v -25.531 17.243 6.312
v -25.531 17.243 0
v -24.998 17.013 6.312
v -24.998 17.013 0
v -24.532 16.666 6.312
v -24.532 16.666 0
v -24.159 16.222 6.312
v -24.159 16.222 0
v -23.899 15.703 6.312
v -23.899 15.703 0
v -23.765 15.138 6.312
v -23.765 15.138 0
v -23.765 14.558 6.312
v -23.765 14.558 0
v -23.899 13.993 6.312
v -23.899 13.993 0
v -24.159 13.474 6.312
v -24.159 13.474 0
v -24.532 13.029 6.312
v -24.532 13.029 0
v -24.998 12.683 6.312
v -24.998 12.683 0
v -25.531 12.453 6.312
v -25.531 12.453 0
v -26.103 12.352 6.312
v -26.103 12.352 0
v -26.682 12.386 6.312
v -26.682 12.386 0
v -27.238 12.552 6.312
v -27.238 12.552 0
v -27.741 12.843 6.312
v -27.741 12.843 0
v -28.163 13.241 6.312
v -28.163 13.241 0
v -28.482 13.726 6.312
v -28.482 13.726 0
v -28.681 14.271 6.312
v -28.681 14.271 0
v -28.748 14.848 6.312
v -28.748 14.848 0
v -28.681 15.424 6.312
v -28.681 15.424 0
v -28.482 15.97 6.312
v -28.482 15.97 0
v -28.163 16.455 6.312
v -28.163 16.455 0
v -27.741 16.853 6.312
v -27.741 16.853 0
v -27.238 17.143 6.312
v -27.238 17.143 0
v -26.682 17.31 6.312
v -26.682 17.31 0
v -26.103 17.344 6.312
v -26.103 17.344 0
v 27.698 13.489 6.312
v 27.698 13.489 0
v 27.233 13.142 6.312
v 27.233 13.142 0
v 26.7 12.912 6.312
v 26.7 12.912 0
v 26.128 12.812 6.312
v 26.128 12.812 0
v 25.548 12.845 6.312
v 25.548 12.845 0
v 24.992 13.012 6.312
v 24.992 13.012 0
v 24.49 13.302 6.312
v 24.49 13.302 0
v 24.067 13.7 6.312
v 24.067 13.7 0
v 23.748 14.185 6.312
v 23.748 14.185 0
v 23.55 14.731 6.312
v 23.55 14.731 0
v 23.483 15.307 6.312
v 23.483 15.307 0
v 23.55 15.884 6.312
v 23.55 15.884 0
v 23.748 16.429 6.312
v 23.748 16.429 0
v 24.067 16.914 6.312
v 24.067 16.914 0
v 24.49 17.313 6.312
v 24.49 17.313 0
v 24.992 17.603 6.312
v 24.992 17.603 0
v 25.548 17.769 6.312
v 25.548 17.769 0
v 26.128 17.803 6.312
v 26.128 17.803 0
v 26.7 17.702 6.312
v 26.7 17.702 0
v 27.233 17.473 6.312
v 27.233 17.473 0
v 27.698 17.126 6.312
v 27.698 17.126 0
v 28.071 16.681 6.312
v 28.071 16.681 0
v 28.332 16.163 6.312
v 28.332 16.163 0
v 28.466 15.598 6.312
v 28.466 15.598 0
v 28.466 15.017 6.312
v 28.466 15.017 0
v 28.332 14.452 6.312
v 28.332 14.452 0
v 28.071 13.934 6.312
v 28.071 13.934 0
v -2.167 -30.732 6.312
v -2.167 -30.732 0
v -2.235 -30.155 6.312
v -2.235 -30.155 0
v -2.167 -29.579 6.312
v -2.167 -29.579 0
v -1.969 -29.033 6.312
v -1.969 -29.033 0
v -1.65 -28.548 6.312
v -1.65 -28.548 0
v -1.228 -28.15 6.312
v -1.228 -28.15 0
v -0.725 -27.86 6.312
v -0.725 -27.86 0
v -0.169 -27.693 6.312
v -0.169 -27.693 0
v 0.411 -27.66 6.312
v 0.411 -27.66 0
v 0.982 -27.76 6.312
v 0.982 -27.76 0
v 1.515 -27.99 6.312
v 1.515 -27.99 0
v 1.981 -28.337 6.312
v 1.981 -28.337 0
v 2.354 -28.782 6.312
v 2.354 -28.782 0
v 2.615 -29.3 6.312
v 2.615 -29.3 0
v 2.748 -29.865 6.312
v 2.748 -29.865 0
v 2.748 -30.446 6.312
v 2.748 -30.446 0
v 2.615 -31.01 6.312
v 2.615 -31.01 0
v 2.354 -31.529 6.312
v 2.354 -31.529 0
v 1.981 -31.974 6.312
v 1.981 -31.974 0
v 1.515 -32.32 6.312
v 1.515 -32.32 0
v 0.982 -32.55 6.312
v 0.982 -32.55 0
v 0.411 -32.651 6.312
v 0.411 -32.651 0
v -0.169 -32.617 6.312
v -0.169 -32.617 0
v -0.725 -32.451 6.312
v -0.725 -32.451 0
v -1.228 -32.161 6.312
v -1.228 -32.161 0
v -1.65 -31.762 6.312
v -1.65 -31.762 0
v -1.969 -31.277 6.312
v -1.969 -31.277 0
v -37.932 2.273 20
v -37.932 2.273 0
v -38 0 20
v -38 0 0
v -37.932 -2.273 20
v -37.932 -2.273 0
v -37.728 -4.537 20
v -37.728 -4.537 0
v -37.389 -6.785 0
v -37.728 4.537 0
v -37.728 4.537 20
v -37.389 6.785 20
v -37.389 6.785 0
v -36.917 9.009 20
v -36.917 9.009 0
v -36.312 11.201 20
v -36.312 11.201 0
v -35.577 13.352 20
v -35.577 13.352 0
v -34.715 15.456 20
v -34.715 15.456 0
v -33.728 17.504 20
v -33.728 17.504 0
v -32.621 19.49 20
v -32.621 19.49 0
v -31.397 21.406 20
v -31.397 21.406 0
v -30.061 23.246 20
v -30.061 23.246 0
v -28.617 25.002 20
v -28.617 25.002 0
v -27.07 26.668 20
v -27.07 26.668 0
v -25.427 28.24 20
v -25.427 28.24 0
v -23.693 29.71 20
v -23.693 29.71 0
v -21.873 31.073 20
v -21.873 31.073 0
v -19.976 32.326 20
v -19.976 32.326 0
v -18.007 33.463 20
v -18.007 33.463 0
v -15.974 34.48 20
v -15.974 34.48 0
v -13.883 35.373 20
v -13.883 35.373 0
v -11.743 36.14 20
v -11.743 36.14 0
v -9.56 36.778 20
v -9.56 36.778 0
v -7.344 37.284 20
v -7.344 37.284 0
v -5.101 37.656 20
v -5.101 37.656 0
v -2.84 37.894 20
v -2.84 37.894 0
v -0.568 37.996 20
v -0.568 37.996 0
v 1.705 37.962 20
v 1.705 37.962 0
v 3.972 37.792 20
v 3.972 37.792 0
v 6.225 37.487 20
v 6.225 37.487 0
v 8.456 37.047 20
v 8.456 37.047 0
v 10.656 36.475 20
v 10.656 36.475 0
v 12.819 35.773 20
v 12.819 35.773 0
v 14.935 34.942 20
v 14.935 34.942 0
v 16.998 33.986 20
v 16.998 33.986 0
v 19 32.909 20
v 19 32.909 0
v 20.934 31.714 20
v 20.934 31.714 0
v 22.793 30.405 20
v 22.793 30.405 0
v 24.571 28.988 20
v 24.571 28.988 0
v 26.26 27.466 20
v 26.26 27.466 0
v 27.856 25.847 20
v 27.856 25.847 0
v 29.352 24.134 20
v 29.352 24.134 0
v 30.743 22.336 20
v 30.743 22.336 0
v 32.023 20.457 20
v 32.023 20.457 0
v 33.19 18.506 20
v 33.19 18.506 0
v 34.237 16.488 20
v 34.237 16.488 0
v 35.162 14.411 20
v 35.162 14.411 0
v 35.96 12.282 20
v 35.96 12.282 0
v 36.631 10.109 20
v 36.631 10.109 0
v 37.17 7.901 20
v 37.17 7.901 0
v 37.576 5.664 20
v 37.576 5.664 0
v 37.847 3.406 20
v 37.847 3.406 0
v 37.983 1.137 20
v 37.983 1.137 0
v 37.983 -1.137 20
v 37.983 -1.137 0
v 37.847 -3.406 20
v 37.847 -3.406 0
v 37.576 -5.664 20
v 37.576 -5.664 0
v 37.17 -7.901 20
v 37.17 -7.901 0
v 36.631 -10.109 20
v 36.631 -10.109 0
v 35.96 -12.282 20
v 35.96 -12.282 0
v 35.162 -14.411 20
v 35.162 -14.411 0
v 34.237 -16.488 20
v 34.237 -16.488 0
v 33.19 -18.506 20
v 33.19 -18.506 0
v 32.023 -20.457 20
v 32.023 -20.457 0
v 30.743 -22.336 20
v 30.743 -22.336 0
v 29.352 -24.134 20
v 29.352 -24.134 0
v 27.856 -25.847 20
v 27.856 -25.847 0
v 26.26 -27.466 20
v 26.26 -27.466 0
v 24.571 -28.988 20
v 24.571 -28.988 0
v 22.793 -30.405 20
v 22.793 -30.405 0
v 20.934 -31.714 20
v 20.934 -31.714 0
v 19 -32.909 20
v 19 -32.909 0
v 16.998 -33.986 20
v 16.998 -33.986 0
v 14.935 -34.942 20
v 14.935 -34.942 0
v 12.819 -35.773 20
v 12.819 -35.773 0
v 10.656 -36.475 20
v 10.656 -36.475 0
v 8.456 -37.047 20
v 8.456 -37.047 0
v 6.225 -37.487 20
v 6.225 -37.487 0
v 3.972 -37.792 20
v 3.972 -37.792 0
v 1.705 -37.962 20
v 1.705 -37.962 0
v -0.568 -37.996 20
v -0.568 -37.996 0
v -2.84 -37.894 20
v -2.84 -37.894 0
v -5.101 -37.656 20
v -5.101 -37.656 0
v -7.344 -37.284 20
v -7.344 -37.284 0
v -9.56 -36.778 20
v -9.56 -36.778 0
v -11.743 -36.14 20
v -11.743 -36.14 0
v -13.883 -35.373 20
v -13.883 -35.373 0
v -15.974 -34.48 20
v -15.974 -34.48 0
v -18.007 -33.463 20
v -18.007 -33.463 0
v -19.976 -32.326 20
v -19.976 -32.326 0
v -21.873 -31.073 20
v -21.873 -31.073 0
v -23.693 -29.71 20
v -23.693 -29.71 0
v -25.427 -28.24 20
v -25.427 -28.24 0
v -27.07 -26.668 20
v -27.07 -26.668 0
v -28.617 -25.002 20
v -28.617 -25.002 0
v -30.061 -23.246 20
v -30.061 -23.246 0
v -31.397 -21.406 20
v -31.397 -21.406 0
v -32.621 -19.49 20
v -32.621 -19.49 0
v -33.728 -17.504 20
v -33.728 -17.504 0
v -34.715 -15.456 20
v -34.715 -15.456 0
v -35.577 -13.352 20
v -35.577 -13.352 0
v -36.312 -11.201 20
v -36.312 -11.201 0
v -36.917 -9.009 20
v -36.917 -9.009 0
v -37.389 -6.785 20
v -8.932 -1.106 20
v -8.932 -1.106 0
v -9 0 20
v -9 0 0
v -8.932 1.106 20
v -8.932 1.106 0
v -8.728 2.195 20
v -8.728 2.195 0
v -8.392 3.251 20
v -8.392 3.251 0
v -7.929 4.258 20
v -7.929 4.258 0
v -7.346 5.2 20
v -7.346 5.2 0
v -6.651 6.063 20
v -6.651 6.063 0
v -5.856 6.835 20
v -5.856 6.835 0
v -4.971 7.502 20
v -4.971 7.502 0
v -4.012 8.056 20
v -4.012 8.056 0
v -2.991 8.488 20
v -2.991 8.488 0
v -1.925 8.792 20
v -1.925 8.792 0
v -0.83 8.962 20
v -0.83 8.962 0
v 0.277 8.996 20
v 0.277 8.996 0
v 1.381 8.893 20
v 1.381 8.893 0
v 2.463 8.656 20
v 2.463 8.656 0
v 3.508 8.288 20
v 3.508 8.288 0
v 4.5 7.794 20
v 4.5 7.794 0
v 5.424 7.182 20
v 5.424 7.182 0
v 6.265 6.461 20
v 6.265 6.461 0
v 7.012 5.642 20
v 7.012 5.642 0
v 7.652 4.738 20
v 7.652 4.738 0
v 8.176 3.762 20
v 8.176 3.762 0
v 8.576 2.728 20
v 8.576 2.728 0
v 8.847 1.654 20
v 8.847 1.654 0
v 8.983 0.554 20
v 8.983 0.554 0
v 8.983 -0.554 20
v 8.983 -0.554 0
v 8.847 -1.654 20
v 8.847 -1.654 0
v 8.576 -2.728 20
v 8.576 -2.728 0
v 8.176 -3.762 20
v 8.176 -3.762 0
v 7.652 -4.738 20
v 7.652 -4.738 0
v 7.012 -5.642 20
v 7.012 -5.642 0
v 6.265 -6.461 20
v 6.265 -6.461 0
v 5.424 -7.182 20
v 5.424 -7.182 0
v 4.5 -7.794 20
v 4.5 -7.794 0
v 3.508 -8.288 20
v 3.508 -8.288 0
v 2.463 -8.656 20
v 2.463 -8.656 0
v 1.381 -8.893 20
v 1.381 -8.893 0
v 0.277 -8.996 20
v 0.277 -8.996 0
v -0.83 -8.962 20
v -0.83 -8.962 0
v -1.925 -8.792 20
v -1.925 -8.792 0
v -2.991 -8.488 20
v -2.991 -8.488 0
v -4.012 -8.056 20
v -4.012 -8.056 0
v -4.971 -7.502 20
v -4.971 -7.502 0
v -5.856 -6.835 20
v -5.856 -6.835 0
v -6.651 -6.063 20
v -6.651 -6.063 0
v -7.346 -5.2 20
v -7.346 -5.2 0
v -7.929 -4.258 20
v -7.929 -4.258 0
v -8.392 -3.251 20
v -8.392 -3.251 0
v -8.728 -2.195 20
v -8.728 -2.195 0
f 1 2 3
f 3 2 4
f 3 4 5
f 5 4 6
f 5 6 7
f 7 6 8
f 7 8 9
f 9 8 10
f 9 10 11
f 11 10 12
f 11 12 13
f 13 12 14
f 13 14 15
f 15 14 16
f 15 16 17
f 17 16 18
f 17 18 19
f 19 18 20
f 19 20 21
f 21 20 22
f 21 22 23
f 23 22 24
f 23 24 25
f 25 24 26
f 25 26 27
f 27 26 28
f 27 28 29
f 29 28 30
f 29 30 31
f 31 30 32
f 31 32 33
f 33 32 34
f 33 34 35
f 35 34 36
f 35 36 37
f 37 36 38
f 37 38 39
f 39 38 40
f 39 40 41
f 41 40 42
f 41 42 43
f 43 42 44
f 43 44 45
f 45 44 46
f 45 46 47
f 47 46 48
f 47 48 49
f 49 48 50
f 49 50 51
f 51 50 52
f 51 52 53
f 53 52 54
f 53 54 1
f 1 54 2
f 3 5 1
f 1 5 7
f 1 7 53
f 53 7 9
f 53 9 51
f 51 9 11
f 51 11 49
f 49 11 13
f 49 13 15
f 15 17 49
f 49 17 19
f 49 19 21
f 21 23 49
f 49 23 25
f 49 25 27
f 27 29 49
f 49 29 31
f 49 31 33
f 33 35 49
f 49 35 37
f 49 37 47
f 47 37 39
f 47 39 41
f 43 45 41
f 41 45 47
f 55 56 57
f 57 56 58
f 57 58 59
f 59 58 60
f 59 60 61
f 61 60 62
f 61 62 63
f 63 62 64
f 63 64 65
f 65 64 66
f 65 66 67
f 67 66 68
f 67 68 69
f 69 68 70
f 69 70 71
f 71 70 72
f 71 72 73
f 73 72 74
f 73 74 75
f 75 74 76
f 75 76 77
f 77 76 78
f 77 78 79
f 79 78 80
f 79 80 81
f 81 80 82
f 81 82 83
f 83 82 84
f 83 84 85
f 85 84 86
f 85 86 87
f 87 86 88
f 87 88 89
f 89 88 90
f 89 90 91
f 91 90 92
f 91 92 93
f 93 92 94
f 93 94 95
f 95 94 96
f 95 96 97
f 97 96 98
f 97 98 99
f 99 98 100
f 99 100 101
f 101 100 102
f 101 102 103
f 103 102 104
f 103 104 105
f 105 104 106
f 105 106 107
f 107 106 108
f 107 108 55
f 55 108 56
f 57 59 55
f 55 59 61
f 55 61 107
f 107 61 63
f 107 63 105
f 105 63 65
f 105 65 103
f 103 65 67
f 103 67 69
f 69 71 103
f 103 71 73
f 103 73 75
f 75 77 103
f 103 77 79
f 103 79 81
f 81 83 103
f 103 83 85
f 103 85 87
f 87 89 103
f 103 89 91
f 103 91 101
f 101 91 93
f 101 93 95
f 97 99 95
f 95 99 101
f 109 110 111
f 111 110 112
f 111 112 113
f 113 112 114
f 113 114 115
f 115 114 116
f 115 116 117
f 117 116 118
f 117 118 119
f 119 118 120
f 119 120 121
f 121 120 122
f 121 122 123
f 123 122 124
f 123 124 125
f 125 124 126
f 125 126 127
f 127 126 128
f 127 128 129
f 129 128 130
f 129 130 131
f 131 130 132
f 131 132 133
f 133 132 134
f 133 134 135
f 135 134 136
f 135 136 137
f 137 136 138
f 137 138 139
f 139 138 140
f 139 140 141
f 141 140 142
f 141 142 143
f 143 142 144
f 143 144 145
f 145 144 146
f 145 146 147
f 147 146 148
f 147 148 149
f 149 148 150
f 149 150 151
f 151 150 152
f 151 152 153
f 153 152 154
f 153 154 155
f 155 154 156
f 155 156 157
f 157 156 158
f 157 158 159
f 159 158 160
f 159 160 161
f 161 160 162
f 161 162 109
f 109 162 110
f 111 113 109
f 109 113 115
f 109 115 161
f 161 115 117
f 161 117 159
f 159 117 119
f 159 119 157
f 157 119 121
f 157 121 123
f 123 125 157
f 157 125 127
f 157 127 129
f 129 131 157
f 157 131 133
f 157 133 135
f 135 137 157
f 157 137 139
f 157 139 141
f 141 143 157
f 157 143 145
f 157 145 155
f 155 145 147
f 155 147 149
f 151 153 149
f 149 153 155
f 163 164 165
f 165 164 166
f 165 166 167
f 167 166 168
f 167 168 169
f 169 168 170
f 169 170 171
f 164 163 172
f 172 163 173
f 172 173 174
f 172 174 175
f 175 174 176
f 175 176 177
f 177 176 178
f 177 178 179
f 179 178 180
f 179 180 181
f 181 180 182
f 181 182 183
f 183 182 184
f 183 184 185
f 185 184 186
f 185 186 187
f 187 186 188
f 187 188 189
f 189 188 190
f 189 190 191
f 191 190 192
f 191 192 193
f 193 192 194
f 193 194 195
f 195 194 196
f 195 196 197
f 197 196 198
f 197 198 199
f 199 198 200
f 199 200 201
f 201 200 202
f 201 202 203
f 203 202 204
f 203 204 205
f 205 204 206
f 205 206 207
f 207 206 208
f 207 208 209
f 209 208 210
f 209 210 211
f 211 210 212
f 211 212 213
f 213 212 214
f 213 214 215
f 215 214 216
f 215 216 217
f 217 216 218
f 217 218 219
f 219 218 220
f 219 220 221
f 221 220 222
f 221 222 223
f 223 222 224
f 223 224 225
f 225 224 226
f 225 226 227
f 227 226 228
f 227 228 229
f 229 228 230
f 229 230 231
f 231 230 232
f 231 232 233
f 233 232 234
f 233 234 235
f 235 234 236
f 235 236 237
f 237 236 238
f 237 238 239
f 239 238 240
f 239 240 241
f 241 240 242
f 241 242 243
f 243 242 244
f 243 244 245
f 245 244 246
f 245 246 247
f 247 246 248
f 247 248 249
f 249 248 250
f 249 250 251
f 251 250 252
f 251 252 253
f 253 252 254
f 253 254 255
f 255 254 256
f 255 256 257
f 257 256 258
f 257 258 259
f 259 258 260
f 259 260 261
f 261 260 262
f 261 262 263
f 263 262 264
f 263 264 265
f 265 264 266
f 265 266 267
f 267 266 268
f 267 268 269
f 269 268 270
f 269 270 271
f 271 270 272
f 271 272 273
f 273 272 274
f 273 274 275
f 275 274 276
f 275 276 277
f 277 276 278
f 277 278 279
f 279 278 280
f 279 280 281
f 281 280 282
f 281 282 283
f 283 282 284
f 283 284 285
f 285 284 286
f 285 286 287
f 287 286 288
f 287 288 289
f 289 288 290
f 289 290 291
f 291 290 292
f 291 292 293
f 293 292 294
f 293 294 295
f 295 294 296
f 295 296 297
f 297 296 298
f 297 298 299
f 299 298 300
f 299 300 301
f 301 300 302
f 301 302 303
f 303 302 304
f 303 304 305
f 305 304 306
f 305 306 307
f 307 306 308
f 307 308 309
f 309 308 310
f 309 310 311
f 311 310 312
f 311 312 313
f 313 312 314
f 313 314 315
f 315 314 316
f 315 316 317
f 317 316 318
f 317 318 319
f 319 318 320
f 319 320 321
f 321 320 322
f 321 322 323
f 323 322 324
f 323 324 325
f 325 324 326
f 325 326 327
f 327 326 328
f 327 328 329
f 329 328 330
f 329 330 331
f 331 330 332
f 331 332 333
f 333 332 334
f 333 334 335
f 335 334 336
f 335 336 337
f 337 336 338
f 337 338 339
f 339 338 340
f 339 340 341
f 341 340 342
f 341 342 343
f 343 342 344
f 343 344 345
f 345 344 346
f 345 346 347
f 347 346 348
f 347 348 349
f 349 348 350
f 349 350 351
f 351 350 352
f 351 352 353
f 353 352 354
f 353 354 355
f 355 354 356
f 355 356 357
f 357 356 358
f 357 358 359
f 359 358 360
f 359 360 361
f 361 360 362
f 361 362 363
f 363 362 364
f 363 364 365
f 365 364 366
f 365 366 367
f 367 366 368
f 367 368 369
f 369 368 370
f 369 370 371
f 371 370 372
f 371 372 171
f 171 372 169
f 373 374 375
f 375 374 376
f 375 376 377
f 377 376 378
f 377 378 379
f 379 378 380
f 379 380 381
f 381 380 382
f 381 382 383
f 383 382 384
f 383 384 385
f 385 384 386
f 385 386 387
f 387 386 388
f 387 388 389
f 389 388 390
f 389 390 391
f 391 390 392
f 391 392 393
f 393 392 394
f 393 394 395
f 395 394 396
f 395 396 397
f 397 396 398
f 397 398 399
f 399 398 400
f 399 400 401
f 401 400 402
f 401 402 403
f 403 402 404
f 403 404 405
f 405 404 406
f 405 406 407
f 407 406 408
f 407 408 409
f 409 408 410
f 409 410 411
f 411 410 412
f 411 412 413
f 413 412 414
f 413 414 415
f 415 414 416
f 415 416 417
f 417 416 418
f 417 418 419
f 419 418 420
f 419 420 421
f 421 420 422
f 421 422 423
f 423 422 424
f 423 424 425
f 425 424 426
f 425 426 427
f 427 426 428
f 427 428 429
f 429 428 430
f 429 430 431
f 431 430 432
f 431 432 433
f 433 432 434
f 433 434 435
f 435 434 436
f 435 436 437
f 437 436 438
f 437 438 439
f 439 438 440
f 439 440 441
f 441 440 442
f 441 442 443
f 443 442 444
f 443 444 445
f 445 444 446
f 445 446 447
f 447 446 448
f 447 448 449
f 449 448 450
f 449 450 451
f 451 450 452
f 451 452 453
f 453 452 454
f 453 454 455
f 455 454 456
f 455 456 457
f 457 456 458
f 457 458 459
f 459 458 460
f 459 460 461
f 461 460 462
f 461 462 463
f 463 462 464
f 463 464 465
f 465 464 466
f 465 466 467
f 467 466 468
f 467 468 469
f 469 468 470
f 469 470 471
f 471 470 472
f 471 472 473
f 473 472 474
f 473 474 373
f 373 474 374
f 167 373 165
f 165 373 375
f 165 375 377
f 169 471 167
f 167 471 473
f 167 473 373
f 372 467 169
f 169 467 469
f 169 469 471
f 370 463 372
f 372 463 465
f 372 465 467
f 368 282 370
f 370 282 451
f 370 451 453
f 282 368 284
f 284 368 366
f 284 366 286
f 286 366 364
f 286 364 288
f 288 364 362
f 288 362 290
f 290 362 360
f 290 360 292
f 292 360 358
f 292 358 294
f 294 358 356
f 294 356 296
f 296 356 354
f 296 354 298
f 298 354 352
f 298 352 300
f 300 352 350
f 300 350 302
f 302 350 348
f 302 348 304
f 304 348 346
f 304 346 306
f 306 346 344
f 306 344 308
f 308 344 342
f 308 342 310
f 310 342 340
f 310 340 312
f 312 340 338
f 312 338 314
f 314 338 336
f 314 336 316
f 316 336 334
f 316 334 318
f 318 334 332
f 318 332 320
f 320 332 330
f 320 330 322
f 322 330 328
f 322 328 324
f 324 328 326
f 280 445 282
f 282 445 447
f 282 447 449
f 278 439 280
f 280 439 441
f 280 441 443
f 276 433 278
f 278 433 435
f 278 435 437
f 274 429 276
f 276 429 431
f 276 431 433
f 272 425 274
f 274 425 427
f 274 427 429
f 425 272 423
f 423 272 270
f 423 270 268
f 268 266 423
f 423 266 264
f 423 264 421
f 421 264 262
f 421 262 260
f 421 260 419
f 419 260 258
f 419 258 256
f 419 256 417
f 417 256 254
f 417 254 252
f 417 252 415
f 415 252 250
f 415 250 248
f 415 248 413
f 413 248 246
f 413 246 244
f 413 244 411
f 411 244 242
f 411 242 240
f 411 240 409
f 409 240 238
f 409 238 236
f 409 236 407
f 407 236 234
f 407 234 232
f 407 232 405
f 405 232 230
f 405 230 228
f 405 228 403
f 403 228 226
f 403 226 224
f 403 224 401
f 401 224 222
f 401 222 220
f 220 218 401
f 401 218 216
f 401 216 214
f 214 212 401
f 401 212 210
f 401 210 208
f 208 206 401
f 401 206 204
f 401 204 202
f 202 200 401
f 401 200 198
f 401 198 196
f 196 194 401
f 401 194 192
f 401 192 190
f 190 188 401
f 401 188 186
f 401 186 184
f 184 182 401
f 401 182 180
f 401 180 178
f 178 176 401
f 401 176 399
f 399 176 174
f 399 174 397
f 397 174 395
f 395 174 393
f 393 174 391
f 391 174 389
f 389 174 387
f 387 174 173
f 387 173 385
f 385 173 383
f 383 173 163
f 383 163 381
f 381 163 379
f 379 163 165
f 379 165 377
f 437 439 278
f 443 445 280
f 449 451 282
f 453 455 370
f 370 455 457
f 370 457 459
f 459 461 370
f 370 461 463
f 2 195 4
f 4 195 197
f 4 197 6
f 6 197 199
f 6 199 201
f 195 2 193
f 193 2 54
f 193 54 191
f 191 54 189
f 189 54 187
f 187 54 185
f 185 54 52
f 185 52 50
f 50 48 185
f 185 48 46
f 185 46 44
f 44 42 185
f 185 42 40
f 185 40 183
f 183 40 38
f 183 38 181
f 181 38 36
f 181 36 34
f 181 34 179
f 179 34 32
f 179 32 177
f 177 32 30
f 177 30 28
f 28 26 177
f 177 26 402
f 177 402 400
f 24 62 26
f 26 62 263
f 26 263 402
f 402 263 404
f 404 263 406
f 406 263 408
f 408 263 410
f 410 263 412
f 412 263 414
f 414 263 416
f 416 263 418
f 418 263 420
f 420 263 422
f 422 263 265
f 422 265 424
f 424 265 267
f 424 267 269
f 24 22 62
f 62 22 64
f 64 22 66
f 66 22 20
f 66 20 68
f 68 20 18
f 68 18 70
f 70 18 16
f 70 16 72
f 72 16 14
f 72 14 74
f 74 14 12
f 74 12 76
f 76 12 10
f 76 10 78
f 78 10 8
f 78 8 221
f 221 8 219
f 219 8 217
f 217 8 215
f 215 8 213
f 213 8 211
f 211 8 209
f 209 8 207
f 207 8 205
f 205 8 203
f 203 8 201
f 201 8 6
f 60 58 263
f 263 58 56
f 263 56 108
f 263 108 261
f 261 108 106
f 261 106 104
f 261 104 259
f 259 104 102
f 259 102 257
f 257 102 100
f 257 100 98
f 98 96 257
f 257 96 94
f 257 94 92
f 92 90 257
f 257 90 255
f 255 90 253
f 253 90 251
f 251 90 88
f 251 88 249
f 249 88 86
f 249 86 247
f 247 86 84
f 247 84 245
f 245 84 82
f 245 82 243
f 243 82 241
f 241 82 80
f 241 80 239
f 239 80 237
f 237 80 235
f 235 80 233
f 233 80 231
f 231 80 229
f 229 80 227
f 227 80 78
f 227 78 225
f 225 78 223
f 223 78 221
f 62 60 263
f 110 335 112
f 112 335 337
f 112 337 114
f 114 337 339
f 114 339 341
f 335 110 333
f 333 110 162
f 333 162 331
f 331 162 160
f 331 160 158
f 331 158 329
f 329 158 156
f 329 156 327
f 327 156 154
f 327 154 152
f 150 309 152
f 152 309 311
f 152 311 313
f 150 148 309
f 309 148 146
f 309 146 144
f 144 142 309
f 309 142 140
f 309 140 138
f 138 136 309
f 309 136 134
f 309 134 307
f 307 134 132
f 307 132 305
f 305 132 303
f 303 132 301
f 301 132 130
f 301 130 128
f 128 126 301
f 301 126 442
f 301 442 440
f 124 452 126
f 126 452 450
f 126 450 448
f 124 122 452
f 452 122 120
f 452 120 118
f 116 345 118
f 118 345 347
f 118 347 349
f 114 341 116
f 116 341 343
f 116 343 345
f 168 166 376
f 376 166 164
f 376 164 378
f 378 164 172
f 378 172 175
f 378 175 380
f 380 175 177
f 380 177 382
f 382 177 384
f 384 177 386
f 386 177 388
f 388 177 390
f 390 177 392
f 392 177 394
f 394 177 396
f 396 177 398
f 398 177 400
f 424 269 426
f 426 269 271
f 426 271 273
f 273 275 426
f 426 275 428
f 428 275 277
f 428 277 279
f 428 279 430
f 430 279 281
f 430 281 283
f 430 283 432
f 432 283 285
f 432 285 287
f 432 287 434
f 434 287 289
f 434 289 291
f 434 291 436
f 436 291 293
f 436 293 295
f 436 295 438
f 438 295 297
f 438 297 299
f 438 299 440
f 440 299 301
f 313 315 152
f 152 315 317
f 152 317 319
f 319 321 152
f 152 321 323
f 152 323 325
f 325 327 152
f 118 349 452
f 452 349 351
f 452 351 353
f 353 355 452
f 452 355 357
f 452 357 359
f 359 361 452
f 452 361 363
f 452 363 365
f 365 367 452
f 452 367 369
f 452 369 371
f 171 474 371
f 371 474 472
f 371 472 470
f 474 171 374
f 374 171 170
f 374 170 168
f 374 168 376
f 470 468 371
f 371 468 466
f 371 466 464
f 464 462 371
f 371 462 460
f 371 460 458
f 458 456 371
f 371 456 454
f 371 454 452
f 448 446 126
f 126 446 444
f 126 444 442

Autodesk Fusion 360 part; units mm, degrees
sketch "Sketch1" plane through (0, 0, 0) normal (0, 0, 1) x (1, 0, 0)
  circle A0 centre (0, 0) radius 9
  circle A1 centre (0, 0) radius 22.5
  circle A2 centre (0, 0) radius 38
  dimension "d1" = 45
  dimension "d2" = 18
  dimension "d3" = 76
extrude "Extrude1" add sketch "Sketch1" along normal blind 20 contours A1
sketch "Sketch2" plane through (0, 0, 0) normal (0, 0, 1) x (1, 0, 0)
  circle A0 centre (0.2654, -30.1553) radius 2.5
  dimension "d8" = 5
extrude "Extrude4" add sketch "Sketch1" along normal blind 20 contours A1 | A2
extrude "Extrude5" cut sketch "Sketch2" along normal blind 6.312
pattern_circular "C-Pattern2" count 3 over 360 about axis through (0, 0, 20) along (0, 0, 1) of "Extrude5"
